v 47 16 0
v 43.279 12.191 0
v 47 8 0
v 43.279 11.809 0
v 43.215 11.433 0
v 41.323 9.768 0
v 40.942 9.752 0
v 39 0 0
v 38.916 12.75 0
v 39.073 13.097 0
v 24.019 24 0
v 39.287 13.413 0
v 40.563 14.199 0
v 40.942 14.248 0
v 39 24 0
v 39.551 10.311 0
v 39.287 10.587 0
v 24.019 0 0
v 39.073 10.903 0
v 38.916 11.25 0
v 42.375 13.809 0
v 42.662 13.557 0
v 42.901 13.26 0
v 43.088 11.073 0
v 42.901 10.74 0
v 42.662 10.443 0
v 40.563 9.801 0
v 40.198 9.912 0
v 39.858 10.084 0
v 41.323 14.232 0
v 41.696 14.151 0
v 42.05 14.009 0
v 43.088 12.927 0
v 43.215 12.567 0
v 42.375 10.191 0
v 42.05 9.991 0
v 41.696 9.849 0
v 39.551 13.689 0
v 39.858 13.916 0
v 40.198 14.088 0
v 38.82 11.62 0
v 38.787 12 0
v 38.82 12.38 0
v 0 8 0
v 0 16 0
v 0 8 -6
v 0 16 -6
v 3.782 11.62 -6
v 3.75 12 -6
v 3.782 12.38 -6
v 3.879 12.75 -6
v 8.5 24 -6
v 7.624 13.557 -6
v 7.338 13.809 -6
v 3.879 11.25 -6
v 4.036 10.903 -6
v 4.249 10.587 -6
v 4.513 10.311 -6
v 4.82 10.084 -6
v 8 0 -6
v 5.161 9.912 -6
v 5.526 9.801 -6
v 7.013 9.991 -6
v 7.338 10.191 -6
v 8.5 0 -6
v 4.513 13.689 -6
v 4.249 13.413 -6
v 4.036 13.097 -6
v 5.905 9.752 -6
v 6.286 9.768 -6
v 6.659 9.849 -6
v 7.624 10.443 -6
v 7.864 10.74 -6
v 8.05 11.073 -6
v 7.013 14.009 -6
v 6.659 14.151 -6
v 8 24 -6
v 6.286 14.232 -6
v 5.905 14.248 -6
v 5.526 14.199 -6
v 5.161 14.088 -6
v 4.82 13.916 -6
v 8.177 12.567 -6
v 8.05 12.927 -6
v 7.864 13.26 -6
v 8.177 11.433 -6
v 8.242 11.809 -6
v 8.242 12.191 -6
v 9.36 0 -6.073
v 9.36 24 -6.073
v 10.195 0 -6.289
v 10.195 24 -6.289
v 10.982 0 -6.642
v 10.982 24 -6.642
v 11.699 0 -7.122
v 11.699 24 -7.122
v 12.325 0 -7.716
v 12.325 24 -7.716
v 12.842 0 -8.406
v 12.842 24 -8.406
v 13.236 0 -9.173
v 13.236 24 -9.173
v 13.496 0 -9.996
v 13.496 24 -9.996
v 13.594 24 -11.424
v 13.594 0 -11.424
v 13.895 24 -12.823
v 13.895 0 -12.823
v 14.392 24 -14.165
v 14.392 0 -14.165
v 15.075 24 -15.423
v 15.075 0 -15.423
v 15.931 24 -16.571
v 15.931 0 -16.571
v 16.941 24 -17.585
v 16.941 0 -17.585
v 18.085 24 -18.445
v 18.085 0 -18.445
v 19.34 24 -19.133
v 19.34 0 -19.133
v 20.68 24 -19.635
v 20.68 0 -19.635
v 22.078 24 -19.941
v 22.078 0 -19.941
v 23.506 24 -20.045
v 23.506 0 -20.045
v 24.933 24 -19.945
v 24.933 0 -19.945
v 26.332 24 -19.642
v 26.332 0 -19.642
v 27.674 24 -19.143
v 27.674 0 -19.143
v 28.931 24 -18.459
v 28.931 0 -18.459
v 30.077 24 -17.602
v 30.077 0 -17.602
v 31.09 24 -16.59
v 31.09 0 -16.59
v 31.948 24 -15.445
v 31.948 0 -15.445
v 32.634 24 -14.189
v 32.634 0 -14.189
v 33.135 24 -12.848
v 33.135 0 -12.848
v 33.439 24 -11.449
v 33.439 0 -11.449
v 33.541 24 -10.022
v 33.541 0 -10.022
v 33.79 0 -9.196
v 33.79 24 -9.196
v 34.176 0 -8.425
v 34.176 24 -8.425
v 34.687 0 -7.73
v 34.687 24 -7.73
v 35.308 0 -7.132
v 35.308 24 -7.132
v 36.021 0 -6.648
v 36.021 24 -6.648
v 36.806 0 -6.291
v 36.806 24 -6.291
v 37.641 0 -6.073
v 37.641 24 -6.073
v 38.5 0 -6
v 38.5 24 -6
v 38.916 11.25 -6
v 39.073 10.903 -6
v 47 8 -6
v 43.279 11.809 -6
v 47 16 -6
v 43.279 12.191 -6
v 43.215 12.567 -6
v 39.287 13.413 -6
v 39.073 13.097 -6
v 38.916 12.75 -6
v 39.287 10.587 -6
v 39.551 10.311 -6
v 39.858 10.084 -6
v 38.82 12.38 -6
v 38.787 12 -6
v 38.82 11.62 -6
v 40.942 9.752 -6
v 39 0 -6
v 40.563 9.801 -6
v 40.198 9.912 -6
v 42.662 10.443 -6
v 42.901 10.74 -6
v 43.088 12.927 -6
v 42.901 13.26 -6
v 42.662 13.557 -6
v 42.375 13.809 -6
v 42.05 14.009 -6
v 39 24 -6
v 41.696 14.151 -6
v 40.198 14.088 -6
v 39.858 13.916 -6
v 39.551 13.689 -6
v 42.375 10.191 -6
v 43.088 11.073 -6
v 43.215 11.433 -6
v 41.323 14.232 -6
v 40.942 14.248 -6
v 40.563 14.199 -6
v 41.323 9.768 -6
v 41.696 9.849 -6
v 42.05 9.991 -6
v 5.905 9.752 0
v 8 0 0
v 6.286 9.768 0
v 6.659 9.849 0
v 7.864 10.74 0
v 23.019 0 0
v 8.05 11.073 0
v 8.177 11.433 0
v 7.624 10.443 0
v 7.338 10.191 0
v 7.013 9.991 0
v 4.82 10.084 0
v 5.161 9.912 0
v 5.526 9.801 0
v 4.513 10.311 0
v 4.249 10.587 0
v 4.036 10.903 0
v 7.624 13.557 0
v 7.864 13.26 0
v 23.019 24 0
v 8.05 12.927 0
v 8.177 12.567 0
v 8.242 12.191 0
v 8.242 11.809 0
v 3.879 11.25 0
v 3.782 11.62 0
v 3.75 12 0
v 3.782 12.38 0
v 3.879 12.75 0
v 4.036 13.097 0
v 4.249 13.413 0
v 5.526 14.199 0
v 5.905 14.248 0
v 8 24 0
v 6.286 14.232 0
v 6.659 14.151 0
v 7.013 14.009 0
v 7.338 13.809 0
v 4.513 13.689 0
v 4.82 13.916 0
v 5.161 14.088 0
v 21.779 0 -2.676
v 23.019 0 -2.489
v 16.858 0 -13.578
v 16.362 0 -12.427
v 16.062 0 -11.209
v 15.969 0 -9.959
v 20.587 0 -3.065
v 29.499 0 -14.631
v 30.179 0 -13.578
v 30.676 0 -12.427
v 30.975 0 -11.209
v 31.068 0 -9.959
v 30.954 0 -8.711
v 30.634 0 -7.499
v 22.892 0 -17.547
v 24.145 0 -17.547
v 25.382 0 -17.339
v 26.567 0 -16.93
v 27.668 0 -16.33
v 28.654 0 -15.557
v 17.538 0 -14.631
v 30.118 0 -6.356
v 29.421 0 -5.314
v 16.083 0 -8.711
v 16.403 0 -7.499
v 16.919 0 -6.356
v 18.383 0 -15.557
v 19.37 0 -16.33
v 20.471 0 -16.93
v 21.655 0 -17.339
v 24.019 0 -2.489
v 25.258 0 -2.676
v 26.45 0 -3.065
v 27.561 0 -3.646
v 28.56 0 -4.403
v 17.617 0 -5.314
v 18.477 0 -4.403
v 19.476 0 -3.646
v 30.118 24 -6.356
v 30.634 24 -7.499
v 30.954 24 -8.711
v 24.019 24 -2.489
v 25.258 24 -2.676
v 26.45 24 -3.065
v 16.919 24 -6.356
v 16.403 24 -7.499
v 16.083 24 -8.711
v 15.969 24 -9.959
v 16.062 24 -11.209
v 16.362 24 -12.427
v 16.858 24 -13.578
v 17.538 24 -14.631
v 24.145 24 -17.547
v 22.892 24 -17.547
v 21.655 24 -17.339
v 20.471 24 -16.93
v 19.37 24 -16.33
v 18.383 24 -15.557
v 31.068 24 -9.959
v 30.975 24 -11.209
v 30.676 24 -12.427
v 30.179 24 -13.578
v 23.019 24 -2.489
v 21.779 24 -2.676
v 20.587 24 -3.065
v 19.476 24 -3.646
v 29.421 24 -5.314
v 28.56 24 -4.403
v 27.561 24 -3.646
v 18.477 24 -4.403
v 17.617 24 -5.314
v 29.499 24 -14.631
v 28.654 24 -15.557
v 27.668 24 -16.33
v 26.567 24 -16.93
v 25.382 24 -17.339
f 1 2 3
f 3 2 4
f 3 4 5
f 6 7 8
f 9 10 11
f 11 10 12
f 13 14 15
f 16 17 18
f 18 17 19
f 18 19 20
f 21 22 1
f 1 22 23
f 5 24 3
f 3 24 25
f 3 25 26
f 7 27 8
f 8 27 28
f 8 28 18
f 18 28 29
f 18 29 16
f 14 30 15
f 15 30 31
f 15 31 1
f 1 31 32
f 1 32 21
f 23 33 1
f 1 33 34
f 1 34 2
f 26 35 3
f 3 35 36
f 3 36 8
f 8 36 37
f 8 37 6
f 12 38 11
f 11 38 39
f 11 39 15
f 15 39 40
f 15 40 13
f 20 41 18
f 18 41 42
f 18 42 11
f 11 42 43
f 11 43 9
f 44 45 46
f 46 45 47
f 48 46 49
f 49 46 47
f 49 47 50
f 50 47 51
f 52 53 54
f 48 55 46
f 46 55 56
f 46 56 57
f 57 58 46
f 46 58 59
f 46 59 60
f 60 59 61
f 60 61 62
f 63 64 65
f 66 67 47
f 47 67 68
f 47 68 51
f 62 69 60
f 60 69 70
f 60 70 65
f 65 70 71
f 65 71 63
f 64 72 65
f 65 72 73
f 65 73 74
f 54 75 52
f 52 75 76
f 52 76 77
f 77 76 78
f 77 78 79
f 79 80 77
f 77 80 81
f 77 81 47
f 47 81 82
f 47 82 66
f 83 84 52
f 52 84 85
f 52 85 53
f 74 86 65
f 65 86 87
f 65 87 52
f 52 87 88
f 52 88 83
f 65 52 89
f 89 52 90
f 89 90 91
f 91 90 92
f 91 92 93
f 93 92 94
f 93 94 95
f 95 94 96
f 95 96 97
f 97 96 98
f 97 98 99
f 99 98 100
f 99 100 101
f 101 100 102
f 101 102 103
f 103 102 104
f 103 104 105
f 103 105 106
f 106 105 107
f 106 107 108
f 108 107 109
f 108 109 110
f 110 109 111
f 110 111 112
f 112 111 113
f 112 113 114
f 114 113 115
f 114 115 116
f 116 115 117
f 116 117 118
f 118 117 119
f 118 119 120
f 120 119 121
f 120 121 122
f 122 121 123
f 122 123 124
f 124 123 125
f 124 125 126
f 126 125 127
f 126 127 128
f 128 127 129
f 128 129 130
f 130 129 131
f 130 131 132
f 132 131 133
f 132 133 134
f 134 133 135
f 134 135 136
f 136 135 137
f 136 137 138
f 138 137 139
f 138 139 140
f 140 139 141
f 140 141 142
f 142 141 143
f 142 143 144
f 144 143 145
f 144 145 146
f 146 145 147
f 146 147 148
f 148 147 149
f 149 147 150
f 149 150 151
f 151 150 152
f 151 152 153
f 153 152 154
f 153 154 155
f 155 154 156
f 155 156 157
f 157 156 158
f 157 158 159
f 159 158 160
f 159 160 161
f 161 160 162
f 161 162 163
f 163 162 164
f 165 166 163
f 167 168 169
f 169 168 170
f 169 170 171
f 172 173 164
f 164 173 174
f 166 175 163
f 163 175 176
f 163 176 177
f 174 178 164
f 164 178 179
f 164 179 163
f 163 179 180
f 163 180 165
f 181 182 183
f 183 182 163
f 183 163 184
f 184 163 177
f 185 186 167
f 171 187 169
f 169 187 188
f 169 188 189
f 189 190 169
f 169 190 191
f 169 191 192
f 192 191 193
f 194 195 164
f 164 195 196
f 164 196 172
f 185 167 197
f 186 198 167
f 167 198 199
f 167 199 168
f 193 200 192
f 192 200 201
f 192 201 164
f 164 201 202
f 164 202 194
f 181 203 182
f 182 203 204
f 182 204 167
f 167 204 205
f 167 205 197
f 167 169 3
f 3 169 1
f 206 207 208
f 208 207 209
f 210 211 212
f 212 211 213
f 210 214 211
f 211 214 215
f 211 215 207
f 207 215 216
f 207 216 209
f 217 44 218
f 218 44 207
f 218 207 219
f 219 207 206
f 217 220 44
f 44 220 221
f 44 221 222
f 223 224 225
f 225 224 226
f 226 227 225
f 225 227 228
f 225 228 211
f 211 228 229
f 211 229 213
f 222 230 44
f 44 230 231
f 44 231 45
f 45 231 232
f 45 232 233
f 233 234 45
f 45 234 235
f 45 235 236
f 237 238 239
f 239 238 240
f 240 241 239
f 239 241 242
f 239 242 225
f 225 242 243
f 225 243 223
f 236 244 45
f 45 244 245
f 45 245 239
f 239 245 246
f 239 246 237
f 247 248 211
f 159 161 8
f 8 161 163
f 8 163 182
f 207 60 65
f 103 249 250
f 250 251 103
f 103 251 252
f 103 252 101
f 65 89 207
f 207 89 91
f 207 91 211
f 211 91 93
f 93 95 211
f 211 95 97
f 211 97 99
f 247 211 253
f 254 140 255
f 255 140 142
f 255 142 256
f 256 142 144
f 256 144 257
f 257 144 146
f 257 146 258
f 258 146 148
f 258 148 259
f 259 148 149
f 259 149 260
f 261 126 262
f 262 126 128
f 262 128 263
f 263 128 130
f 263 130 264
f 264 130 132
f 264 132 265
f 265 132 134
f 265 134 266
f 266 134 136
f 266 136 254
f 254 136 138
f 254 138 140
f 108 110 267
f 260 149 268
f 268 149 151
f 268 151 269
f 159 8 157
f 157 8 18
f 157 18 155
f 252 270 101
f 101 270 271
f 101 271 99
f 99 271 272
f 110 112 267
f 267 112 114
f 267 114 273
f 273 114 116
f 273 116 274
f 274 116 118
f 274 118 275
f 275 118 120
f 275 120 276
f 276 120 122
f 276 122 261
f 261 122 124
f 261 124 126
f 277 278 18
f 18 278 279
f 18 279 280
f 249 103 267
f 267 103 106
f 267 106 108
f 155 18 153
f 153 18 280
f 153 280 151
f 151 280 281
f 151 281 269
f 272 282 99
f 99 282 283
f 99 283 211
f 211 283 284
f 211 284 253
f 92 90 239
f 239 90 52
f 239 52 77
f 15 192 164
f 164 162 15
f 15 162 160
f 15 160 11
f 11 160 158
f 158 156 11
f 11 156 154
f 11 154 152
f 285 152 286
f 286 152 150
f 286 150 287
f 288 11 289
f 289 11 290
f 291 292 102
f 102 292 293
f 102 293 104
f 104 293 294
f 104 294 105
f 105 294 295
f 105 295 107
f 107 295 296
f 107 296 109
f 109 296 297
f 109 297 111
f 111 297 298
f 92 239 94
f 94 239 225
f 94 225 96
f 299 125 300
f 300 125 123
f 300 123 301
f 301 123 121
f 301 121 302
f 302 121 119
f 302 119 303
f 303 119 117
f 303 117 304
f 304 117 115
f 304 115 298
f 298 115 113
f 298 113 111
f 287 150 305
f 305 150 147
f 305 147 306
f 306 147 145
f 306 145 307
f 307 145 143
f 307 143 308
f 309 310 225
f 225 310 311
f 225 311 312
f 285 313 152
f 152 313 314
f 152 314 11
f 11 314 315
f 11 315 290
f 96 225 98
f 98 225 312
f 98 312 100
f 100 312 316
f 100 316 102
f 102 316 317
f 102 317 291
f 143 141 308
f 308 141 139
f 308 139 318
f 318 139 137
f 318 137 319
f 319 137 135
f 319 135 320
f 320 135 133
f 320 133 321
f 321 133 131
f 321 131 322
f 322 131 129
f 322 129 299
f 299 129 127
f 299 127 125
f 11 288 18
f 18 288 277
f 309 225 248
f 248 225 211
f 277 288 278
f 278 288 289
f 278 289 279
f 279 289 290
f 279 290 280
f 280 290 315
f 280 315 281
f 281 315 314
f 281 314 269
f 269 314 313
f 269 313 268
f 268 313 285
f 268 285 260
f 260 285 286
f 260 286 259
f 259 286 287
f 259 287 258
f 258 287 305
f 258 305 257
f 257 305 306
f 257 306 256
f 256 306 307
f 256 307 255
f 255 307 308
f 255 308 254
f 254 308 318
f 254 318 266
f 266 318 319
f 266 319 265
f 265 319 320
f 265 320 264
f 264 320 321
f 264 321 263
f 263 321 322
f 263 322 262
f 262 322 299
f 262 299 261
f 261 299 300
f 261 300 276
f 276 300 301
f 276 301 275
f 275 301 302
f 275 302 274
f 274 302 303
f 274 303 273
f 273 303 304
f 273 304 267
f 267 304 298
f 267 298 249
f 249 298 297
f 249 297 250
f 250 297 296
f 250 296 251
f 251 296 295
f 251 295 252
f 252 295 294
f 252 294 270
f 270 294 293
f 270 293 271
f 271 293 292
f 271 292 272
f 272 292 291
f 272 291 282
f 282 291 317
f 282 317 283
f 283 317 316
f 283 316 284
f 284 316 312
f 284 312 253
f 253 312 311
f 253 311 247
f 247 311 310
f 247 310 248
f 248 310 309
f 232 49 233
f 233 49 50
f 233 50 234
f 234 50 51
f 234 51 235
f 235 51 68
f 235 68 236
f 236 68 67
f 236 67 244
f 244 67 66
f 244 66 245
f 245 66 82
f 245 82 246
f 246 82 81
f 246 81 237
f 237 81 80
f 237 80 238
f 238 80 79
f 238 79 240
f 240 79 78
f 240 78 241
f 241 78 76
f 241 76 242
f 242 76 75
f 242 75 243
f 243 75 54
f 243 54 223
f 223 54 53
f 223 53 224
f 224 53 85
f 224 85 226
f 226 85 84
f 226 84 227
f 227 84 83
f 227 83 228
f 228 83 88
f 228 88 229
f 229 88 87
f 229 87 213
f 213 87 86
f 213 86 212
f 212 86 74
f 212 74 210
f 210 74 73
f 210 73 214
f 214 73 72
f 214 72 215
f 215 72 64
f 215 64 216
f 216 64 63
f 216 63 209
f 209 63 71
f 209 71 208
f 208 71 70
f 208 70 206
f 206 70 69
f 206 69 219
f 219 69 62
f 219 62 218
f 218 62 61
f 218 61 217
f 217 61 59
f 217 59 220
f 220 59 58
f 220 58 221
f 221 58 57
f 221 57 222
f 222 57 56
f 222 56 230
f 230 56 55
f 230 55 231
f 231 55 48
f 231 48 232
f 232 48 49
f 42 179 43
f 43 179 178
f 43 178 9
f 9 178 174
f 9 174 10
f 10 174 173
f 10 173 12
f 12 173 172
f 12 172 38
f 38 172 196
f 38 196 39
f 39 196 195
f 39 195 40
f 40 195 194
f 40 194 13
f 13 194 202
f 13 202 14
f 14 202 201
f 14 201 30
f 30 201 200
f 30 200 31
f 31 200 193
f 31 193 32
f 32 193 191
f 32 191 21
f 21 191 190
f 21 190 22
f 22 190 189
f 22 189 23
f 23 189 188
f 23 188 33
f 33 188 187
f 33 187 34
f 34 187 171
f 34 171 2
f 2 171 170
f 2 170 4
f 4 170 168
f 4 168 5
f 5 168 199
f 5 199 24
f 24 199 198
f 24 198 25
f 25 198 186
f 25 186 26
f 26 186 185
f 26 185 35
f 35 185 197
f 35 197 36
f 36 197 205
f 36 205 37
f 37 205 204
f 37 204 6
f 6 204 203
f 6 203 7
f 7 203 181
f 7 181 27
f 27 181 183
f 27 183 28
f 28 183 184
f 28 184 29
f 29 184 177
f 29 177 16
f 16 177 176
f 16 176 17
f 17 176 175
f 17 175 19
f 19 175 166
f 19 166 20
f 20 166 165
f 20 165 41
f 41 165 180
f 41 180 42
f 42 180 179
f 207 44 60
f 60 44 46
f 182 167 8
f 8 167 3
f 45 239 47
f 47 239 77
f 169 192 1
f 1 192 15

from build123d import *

# Parameters (mm, degrees)
BOSS_EXTRUDE1_DEPTH            = 24
CUT_EXTRUDE1_DEPTH             = 25
SKETCH3_W                      = 7.55
SKETCH3_H                      = 24
F_4_5_4_5_DIAMETER_HOLE1_D     = 4.5
F_4_5_4_5_DIAMETER_HOLE1_DEPTH = 6
CHAMFER1_SIZE                  = 8


with BuildPart() as part:
    # Sketch1 → Boss-Extrude1 (new body)
    with BuildSketch(Plane(origin=(0, 24, 0), x_dir=(1, 0, 0), z_dir=(0, 1, 0))):
        with BuildLine():
            Line((0, 0), (47, 0))
            Line((47, 0), (47, 6))
            Line((47, 6), (38.5, 6))
            ThreePointArc((38.5, 6), (35.307693119, 7.131854655), (33.541354656, 10.021831577))
            ThreePointArc((33.541354656, 10.021831577), (23.505747016, 20.045434485), (13.49594739, 9.996059012))
            ThreePointArc((13.49594739, 9.996059012), (11.698748894, 7.121907302), (8.5, 6))
            Line((8.5, 6), (0, 6))
            Line((0, 6), (0, 0))
        make_face()
    extrude(amount=-BOSS_EXTRUDE1_DEPTH)

    # Sketch2 → Cut-Extrude1 (cut, through all)
    with BuildSketch(Plane.XZ):
        with BuildLine():
            Line((24.018633311, 0), (23.018633311, 0))
            Line((23.018633311, 0), (23.018633311, -2.489295869))
            ThreePointArc((23.018633311, -2.489295869), (23.518633311, -2.472721384), (24.018633311, -2.489295869))
            Line((24.018633311, -2.489295869), (24.018633311, 0))
        make_face()
    extrude(amount=-CUT_EXTRUDE1_DEPTH, mode=Mode.SUBTRACT)

    # Sketch3 → Cut-Revolve1 (revolve, cut)
    with BuildSketch(Plane(origin=(0, 0, -10.022721384), x_dir=(-1, 0, 0), z_dir=(0, 0, -1))):
        with Locations((-27.293633311, 12)):
            Rectangle(SKETCH3_W, SKETCH3_H)
    revolve(axis=Axis((23.518633311, 0, -10.022721384), (0, 1, 0)), mode=Mode.SUBTRACT)

    # Ø4.5 (4.5) Diameter Hole1
    with Locations(Plane(origin=(0, 0, -6), x_dir=(-1, 0, 0), z_dir=(0, 0, -1))):
        with Locations((-41.037266621, 12), (-6, 12)):
            Hole(F_4_5_4_5_DIAMETER_HOLE1_D / 2, depth=F_4_5_4_5_DIAMETER_HOLE1_DEPTH)

    # Chamfer1
    chamfer1_edges = [part.edges().sort_by_distance(p)[0] for p in [
        (47, 0, -3),
        (0, 24, -3),
        (0, 0, -3),
        (47, 24, -3),
    ]]
    chamfer(chamfer1_edges, length=CHAMFER1_SIZE)


solid = part.part
